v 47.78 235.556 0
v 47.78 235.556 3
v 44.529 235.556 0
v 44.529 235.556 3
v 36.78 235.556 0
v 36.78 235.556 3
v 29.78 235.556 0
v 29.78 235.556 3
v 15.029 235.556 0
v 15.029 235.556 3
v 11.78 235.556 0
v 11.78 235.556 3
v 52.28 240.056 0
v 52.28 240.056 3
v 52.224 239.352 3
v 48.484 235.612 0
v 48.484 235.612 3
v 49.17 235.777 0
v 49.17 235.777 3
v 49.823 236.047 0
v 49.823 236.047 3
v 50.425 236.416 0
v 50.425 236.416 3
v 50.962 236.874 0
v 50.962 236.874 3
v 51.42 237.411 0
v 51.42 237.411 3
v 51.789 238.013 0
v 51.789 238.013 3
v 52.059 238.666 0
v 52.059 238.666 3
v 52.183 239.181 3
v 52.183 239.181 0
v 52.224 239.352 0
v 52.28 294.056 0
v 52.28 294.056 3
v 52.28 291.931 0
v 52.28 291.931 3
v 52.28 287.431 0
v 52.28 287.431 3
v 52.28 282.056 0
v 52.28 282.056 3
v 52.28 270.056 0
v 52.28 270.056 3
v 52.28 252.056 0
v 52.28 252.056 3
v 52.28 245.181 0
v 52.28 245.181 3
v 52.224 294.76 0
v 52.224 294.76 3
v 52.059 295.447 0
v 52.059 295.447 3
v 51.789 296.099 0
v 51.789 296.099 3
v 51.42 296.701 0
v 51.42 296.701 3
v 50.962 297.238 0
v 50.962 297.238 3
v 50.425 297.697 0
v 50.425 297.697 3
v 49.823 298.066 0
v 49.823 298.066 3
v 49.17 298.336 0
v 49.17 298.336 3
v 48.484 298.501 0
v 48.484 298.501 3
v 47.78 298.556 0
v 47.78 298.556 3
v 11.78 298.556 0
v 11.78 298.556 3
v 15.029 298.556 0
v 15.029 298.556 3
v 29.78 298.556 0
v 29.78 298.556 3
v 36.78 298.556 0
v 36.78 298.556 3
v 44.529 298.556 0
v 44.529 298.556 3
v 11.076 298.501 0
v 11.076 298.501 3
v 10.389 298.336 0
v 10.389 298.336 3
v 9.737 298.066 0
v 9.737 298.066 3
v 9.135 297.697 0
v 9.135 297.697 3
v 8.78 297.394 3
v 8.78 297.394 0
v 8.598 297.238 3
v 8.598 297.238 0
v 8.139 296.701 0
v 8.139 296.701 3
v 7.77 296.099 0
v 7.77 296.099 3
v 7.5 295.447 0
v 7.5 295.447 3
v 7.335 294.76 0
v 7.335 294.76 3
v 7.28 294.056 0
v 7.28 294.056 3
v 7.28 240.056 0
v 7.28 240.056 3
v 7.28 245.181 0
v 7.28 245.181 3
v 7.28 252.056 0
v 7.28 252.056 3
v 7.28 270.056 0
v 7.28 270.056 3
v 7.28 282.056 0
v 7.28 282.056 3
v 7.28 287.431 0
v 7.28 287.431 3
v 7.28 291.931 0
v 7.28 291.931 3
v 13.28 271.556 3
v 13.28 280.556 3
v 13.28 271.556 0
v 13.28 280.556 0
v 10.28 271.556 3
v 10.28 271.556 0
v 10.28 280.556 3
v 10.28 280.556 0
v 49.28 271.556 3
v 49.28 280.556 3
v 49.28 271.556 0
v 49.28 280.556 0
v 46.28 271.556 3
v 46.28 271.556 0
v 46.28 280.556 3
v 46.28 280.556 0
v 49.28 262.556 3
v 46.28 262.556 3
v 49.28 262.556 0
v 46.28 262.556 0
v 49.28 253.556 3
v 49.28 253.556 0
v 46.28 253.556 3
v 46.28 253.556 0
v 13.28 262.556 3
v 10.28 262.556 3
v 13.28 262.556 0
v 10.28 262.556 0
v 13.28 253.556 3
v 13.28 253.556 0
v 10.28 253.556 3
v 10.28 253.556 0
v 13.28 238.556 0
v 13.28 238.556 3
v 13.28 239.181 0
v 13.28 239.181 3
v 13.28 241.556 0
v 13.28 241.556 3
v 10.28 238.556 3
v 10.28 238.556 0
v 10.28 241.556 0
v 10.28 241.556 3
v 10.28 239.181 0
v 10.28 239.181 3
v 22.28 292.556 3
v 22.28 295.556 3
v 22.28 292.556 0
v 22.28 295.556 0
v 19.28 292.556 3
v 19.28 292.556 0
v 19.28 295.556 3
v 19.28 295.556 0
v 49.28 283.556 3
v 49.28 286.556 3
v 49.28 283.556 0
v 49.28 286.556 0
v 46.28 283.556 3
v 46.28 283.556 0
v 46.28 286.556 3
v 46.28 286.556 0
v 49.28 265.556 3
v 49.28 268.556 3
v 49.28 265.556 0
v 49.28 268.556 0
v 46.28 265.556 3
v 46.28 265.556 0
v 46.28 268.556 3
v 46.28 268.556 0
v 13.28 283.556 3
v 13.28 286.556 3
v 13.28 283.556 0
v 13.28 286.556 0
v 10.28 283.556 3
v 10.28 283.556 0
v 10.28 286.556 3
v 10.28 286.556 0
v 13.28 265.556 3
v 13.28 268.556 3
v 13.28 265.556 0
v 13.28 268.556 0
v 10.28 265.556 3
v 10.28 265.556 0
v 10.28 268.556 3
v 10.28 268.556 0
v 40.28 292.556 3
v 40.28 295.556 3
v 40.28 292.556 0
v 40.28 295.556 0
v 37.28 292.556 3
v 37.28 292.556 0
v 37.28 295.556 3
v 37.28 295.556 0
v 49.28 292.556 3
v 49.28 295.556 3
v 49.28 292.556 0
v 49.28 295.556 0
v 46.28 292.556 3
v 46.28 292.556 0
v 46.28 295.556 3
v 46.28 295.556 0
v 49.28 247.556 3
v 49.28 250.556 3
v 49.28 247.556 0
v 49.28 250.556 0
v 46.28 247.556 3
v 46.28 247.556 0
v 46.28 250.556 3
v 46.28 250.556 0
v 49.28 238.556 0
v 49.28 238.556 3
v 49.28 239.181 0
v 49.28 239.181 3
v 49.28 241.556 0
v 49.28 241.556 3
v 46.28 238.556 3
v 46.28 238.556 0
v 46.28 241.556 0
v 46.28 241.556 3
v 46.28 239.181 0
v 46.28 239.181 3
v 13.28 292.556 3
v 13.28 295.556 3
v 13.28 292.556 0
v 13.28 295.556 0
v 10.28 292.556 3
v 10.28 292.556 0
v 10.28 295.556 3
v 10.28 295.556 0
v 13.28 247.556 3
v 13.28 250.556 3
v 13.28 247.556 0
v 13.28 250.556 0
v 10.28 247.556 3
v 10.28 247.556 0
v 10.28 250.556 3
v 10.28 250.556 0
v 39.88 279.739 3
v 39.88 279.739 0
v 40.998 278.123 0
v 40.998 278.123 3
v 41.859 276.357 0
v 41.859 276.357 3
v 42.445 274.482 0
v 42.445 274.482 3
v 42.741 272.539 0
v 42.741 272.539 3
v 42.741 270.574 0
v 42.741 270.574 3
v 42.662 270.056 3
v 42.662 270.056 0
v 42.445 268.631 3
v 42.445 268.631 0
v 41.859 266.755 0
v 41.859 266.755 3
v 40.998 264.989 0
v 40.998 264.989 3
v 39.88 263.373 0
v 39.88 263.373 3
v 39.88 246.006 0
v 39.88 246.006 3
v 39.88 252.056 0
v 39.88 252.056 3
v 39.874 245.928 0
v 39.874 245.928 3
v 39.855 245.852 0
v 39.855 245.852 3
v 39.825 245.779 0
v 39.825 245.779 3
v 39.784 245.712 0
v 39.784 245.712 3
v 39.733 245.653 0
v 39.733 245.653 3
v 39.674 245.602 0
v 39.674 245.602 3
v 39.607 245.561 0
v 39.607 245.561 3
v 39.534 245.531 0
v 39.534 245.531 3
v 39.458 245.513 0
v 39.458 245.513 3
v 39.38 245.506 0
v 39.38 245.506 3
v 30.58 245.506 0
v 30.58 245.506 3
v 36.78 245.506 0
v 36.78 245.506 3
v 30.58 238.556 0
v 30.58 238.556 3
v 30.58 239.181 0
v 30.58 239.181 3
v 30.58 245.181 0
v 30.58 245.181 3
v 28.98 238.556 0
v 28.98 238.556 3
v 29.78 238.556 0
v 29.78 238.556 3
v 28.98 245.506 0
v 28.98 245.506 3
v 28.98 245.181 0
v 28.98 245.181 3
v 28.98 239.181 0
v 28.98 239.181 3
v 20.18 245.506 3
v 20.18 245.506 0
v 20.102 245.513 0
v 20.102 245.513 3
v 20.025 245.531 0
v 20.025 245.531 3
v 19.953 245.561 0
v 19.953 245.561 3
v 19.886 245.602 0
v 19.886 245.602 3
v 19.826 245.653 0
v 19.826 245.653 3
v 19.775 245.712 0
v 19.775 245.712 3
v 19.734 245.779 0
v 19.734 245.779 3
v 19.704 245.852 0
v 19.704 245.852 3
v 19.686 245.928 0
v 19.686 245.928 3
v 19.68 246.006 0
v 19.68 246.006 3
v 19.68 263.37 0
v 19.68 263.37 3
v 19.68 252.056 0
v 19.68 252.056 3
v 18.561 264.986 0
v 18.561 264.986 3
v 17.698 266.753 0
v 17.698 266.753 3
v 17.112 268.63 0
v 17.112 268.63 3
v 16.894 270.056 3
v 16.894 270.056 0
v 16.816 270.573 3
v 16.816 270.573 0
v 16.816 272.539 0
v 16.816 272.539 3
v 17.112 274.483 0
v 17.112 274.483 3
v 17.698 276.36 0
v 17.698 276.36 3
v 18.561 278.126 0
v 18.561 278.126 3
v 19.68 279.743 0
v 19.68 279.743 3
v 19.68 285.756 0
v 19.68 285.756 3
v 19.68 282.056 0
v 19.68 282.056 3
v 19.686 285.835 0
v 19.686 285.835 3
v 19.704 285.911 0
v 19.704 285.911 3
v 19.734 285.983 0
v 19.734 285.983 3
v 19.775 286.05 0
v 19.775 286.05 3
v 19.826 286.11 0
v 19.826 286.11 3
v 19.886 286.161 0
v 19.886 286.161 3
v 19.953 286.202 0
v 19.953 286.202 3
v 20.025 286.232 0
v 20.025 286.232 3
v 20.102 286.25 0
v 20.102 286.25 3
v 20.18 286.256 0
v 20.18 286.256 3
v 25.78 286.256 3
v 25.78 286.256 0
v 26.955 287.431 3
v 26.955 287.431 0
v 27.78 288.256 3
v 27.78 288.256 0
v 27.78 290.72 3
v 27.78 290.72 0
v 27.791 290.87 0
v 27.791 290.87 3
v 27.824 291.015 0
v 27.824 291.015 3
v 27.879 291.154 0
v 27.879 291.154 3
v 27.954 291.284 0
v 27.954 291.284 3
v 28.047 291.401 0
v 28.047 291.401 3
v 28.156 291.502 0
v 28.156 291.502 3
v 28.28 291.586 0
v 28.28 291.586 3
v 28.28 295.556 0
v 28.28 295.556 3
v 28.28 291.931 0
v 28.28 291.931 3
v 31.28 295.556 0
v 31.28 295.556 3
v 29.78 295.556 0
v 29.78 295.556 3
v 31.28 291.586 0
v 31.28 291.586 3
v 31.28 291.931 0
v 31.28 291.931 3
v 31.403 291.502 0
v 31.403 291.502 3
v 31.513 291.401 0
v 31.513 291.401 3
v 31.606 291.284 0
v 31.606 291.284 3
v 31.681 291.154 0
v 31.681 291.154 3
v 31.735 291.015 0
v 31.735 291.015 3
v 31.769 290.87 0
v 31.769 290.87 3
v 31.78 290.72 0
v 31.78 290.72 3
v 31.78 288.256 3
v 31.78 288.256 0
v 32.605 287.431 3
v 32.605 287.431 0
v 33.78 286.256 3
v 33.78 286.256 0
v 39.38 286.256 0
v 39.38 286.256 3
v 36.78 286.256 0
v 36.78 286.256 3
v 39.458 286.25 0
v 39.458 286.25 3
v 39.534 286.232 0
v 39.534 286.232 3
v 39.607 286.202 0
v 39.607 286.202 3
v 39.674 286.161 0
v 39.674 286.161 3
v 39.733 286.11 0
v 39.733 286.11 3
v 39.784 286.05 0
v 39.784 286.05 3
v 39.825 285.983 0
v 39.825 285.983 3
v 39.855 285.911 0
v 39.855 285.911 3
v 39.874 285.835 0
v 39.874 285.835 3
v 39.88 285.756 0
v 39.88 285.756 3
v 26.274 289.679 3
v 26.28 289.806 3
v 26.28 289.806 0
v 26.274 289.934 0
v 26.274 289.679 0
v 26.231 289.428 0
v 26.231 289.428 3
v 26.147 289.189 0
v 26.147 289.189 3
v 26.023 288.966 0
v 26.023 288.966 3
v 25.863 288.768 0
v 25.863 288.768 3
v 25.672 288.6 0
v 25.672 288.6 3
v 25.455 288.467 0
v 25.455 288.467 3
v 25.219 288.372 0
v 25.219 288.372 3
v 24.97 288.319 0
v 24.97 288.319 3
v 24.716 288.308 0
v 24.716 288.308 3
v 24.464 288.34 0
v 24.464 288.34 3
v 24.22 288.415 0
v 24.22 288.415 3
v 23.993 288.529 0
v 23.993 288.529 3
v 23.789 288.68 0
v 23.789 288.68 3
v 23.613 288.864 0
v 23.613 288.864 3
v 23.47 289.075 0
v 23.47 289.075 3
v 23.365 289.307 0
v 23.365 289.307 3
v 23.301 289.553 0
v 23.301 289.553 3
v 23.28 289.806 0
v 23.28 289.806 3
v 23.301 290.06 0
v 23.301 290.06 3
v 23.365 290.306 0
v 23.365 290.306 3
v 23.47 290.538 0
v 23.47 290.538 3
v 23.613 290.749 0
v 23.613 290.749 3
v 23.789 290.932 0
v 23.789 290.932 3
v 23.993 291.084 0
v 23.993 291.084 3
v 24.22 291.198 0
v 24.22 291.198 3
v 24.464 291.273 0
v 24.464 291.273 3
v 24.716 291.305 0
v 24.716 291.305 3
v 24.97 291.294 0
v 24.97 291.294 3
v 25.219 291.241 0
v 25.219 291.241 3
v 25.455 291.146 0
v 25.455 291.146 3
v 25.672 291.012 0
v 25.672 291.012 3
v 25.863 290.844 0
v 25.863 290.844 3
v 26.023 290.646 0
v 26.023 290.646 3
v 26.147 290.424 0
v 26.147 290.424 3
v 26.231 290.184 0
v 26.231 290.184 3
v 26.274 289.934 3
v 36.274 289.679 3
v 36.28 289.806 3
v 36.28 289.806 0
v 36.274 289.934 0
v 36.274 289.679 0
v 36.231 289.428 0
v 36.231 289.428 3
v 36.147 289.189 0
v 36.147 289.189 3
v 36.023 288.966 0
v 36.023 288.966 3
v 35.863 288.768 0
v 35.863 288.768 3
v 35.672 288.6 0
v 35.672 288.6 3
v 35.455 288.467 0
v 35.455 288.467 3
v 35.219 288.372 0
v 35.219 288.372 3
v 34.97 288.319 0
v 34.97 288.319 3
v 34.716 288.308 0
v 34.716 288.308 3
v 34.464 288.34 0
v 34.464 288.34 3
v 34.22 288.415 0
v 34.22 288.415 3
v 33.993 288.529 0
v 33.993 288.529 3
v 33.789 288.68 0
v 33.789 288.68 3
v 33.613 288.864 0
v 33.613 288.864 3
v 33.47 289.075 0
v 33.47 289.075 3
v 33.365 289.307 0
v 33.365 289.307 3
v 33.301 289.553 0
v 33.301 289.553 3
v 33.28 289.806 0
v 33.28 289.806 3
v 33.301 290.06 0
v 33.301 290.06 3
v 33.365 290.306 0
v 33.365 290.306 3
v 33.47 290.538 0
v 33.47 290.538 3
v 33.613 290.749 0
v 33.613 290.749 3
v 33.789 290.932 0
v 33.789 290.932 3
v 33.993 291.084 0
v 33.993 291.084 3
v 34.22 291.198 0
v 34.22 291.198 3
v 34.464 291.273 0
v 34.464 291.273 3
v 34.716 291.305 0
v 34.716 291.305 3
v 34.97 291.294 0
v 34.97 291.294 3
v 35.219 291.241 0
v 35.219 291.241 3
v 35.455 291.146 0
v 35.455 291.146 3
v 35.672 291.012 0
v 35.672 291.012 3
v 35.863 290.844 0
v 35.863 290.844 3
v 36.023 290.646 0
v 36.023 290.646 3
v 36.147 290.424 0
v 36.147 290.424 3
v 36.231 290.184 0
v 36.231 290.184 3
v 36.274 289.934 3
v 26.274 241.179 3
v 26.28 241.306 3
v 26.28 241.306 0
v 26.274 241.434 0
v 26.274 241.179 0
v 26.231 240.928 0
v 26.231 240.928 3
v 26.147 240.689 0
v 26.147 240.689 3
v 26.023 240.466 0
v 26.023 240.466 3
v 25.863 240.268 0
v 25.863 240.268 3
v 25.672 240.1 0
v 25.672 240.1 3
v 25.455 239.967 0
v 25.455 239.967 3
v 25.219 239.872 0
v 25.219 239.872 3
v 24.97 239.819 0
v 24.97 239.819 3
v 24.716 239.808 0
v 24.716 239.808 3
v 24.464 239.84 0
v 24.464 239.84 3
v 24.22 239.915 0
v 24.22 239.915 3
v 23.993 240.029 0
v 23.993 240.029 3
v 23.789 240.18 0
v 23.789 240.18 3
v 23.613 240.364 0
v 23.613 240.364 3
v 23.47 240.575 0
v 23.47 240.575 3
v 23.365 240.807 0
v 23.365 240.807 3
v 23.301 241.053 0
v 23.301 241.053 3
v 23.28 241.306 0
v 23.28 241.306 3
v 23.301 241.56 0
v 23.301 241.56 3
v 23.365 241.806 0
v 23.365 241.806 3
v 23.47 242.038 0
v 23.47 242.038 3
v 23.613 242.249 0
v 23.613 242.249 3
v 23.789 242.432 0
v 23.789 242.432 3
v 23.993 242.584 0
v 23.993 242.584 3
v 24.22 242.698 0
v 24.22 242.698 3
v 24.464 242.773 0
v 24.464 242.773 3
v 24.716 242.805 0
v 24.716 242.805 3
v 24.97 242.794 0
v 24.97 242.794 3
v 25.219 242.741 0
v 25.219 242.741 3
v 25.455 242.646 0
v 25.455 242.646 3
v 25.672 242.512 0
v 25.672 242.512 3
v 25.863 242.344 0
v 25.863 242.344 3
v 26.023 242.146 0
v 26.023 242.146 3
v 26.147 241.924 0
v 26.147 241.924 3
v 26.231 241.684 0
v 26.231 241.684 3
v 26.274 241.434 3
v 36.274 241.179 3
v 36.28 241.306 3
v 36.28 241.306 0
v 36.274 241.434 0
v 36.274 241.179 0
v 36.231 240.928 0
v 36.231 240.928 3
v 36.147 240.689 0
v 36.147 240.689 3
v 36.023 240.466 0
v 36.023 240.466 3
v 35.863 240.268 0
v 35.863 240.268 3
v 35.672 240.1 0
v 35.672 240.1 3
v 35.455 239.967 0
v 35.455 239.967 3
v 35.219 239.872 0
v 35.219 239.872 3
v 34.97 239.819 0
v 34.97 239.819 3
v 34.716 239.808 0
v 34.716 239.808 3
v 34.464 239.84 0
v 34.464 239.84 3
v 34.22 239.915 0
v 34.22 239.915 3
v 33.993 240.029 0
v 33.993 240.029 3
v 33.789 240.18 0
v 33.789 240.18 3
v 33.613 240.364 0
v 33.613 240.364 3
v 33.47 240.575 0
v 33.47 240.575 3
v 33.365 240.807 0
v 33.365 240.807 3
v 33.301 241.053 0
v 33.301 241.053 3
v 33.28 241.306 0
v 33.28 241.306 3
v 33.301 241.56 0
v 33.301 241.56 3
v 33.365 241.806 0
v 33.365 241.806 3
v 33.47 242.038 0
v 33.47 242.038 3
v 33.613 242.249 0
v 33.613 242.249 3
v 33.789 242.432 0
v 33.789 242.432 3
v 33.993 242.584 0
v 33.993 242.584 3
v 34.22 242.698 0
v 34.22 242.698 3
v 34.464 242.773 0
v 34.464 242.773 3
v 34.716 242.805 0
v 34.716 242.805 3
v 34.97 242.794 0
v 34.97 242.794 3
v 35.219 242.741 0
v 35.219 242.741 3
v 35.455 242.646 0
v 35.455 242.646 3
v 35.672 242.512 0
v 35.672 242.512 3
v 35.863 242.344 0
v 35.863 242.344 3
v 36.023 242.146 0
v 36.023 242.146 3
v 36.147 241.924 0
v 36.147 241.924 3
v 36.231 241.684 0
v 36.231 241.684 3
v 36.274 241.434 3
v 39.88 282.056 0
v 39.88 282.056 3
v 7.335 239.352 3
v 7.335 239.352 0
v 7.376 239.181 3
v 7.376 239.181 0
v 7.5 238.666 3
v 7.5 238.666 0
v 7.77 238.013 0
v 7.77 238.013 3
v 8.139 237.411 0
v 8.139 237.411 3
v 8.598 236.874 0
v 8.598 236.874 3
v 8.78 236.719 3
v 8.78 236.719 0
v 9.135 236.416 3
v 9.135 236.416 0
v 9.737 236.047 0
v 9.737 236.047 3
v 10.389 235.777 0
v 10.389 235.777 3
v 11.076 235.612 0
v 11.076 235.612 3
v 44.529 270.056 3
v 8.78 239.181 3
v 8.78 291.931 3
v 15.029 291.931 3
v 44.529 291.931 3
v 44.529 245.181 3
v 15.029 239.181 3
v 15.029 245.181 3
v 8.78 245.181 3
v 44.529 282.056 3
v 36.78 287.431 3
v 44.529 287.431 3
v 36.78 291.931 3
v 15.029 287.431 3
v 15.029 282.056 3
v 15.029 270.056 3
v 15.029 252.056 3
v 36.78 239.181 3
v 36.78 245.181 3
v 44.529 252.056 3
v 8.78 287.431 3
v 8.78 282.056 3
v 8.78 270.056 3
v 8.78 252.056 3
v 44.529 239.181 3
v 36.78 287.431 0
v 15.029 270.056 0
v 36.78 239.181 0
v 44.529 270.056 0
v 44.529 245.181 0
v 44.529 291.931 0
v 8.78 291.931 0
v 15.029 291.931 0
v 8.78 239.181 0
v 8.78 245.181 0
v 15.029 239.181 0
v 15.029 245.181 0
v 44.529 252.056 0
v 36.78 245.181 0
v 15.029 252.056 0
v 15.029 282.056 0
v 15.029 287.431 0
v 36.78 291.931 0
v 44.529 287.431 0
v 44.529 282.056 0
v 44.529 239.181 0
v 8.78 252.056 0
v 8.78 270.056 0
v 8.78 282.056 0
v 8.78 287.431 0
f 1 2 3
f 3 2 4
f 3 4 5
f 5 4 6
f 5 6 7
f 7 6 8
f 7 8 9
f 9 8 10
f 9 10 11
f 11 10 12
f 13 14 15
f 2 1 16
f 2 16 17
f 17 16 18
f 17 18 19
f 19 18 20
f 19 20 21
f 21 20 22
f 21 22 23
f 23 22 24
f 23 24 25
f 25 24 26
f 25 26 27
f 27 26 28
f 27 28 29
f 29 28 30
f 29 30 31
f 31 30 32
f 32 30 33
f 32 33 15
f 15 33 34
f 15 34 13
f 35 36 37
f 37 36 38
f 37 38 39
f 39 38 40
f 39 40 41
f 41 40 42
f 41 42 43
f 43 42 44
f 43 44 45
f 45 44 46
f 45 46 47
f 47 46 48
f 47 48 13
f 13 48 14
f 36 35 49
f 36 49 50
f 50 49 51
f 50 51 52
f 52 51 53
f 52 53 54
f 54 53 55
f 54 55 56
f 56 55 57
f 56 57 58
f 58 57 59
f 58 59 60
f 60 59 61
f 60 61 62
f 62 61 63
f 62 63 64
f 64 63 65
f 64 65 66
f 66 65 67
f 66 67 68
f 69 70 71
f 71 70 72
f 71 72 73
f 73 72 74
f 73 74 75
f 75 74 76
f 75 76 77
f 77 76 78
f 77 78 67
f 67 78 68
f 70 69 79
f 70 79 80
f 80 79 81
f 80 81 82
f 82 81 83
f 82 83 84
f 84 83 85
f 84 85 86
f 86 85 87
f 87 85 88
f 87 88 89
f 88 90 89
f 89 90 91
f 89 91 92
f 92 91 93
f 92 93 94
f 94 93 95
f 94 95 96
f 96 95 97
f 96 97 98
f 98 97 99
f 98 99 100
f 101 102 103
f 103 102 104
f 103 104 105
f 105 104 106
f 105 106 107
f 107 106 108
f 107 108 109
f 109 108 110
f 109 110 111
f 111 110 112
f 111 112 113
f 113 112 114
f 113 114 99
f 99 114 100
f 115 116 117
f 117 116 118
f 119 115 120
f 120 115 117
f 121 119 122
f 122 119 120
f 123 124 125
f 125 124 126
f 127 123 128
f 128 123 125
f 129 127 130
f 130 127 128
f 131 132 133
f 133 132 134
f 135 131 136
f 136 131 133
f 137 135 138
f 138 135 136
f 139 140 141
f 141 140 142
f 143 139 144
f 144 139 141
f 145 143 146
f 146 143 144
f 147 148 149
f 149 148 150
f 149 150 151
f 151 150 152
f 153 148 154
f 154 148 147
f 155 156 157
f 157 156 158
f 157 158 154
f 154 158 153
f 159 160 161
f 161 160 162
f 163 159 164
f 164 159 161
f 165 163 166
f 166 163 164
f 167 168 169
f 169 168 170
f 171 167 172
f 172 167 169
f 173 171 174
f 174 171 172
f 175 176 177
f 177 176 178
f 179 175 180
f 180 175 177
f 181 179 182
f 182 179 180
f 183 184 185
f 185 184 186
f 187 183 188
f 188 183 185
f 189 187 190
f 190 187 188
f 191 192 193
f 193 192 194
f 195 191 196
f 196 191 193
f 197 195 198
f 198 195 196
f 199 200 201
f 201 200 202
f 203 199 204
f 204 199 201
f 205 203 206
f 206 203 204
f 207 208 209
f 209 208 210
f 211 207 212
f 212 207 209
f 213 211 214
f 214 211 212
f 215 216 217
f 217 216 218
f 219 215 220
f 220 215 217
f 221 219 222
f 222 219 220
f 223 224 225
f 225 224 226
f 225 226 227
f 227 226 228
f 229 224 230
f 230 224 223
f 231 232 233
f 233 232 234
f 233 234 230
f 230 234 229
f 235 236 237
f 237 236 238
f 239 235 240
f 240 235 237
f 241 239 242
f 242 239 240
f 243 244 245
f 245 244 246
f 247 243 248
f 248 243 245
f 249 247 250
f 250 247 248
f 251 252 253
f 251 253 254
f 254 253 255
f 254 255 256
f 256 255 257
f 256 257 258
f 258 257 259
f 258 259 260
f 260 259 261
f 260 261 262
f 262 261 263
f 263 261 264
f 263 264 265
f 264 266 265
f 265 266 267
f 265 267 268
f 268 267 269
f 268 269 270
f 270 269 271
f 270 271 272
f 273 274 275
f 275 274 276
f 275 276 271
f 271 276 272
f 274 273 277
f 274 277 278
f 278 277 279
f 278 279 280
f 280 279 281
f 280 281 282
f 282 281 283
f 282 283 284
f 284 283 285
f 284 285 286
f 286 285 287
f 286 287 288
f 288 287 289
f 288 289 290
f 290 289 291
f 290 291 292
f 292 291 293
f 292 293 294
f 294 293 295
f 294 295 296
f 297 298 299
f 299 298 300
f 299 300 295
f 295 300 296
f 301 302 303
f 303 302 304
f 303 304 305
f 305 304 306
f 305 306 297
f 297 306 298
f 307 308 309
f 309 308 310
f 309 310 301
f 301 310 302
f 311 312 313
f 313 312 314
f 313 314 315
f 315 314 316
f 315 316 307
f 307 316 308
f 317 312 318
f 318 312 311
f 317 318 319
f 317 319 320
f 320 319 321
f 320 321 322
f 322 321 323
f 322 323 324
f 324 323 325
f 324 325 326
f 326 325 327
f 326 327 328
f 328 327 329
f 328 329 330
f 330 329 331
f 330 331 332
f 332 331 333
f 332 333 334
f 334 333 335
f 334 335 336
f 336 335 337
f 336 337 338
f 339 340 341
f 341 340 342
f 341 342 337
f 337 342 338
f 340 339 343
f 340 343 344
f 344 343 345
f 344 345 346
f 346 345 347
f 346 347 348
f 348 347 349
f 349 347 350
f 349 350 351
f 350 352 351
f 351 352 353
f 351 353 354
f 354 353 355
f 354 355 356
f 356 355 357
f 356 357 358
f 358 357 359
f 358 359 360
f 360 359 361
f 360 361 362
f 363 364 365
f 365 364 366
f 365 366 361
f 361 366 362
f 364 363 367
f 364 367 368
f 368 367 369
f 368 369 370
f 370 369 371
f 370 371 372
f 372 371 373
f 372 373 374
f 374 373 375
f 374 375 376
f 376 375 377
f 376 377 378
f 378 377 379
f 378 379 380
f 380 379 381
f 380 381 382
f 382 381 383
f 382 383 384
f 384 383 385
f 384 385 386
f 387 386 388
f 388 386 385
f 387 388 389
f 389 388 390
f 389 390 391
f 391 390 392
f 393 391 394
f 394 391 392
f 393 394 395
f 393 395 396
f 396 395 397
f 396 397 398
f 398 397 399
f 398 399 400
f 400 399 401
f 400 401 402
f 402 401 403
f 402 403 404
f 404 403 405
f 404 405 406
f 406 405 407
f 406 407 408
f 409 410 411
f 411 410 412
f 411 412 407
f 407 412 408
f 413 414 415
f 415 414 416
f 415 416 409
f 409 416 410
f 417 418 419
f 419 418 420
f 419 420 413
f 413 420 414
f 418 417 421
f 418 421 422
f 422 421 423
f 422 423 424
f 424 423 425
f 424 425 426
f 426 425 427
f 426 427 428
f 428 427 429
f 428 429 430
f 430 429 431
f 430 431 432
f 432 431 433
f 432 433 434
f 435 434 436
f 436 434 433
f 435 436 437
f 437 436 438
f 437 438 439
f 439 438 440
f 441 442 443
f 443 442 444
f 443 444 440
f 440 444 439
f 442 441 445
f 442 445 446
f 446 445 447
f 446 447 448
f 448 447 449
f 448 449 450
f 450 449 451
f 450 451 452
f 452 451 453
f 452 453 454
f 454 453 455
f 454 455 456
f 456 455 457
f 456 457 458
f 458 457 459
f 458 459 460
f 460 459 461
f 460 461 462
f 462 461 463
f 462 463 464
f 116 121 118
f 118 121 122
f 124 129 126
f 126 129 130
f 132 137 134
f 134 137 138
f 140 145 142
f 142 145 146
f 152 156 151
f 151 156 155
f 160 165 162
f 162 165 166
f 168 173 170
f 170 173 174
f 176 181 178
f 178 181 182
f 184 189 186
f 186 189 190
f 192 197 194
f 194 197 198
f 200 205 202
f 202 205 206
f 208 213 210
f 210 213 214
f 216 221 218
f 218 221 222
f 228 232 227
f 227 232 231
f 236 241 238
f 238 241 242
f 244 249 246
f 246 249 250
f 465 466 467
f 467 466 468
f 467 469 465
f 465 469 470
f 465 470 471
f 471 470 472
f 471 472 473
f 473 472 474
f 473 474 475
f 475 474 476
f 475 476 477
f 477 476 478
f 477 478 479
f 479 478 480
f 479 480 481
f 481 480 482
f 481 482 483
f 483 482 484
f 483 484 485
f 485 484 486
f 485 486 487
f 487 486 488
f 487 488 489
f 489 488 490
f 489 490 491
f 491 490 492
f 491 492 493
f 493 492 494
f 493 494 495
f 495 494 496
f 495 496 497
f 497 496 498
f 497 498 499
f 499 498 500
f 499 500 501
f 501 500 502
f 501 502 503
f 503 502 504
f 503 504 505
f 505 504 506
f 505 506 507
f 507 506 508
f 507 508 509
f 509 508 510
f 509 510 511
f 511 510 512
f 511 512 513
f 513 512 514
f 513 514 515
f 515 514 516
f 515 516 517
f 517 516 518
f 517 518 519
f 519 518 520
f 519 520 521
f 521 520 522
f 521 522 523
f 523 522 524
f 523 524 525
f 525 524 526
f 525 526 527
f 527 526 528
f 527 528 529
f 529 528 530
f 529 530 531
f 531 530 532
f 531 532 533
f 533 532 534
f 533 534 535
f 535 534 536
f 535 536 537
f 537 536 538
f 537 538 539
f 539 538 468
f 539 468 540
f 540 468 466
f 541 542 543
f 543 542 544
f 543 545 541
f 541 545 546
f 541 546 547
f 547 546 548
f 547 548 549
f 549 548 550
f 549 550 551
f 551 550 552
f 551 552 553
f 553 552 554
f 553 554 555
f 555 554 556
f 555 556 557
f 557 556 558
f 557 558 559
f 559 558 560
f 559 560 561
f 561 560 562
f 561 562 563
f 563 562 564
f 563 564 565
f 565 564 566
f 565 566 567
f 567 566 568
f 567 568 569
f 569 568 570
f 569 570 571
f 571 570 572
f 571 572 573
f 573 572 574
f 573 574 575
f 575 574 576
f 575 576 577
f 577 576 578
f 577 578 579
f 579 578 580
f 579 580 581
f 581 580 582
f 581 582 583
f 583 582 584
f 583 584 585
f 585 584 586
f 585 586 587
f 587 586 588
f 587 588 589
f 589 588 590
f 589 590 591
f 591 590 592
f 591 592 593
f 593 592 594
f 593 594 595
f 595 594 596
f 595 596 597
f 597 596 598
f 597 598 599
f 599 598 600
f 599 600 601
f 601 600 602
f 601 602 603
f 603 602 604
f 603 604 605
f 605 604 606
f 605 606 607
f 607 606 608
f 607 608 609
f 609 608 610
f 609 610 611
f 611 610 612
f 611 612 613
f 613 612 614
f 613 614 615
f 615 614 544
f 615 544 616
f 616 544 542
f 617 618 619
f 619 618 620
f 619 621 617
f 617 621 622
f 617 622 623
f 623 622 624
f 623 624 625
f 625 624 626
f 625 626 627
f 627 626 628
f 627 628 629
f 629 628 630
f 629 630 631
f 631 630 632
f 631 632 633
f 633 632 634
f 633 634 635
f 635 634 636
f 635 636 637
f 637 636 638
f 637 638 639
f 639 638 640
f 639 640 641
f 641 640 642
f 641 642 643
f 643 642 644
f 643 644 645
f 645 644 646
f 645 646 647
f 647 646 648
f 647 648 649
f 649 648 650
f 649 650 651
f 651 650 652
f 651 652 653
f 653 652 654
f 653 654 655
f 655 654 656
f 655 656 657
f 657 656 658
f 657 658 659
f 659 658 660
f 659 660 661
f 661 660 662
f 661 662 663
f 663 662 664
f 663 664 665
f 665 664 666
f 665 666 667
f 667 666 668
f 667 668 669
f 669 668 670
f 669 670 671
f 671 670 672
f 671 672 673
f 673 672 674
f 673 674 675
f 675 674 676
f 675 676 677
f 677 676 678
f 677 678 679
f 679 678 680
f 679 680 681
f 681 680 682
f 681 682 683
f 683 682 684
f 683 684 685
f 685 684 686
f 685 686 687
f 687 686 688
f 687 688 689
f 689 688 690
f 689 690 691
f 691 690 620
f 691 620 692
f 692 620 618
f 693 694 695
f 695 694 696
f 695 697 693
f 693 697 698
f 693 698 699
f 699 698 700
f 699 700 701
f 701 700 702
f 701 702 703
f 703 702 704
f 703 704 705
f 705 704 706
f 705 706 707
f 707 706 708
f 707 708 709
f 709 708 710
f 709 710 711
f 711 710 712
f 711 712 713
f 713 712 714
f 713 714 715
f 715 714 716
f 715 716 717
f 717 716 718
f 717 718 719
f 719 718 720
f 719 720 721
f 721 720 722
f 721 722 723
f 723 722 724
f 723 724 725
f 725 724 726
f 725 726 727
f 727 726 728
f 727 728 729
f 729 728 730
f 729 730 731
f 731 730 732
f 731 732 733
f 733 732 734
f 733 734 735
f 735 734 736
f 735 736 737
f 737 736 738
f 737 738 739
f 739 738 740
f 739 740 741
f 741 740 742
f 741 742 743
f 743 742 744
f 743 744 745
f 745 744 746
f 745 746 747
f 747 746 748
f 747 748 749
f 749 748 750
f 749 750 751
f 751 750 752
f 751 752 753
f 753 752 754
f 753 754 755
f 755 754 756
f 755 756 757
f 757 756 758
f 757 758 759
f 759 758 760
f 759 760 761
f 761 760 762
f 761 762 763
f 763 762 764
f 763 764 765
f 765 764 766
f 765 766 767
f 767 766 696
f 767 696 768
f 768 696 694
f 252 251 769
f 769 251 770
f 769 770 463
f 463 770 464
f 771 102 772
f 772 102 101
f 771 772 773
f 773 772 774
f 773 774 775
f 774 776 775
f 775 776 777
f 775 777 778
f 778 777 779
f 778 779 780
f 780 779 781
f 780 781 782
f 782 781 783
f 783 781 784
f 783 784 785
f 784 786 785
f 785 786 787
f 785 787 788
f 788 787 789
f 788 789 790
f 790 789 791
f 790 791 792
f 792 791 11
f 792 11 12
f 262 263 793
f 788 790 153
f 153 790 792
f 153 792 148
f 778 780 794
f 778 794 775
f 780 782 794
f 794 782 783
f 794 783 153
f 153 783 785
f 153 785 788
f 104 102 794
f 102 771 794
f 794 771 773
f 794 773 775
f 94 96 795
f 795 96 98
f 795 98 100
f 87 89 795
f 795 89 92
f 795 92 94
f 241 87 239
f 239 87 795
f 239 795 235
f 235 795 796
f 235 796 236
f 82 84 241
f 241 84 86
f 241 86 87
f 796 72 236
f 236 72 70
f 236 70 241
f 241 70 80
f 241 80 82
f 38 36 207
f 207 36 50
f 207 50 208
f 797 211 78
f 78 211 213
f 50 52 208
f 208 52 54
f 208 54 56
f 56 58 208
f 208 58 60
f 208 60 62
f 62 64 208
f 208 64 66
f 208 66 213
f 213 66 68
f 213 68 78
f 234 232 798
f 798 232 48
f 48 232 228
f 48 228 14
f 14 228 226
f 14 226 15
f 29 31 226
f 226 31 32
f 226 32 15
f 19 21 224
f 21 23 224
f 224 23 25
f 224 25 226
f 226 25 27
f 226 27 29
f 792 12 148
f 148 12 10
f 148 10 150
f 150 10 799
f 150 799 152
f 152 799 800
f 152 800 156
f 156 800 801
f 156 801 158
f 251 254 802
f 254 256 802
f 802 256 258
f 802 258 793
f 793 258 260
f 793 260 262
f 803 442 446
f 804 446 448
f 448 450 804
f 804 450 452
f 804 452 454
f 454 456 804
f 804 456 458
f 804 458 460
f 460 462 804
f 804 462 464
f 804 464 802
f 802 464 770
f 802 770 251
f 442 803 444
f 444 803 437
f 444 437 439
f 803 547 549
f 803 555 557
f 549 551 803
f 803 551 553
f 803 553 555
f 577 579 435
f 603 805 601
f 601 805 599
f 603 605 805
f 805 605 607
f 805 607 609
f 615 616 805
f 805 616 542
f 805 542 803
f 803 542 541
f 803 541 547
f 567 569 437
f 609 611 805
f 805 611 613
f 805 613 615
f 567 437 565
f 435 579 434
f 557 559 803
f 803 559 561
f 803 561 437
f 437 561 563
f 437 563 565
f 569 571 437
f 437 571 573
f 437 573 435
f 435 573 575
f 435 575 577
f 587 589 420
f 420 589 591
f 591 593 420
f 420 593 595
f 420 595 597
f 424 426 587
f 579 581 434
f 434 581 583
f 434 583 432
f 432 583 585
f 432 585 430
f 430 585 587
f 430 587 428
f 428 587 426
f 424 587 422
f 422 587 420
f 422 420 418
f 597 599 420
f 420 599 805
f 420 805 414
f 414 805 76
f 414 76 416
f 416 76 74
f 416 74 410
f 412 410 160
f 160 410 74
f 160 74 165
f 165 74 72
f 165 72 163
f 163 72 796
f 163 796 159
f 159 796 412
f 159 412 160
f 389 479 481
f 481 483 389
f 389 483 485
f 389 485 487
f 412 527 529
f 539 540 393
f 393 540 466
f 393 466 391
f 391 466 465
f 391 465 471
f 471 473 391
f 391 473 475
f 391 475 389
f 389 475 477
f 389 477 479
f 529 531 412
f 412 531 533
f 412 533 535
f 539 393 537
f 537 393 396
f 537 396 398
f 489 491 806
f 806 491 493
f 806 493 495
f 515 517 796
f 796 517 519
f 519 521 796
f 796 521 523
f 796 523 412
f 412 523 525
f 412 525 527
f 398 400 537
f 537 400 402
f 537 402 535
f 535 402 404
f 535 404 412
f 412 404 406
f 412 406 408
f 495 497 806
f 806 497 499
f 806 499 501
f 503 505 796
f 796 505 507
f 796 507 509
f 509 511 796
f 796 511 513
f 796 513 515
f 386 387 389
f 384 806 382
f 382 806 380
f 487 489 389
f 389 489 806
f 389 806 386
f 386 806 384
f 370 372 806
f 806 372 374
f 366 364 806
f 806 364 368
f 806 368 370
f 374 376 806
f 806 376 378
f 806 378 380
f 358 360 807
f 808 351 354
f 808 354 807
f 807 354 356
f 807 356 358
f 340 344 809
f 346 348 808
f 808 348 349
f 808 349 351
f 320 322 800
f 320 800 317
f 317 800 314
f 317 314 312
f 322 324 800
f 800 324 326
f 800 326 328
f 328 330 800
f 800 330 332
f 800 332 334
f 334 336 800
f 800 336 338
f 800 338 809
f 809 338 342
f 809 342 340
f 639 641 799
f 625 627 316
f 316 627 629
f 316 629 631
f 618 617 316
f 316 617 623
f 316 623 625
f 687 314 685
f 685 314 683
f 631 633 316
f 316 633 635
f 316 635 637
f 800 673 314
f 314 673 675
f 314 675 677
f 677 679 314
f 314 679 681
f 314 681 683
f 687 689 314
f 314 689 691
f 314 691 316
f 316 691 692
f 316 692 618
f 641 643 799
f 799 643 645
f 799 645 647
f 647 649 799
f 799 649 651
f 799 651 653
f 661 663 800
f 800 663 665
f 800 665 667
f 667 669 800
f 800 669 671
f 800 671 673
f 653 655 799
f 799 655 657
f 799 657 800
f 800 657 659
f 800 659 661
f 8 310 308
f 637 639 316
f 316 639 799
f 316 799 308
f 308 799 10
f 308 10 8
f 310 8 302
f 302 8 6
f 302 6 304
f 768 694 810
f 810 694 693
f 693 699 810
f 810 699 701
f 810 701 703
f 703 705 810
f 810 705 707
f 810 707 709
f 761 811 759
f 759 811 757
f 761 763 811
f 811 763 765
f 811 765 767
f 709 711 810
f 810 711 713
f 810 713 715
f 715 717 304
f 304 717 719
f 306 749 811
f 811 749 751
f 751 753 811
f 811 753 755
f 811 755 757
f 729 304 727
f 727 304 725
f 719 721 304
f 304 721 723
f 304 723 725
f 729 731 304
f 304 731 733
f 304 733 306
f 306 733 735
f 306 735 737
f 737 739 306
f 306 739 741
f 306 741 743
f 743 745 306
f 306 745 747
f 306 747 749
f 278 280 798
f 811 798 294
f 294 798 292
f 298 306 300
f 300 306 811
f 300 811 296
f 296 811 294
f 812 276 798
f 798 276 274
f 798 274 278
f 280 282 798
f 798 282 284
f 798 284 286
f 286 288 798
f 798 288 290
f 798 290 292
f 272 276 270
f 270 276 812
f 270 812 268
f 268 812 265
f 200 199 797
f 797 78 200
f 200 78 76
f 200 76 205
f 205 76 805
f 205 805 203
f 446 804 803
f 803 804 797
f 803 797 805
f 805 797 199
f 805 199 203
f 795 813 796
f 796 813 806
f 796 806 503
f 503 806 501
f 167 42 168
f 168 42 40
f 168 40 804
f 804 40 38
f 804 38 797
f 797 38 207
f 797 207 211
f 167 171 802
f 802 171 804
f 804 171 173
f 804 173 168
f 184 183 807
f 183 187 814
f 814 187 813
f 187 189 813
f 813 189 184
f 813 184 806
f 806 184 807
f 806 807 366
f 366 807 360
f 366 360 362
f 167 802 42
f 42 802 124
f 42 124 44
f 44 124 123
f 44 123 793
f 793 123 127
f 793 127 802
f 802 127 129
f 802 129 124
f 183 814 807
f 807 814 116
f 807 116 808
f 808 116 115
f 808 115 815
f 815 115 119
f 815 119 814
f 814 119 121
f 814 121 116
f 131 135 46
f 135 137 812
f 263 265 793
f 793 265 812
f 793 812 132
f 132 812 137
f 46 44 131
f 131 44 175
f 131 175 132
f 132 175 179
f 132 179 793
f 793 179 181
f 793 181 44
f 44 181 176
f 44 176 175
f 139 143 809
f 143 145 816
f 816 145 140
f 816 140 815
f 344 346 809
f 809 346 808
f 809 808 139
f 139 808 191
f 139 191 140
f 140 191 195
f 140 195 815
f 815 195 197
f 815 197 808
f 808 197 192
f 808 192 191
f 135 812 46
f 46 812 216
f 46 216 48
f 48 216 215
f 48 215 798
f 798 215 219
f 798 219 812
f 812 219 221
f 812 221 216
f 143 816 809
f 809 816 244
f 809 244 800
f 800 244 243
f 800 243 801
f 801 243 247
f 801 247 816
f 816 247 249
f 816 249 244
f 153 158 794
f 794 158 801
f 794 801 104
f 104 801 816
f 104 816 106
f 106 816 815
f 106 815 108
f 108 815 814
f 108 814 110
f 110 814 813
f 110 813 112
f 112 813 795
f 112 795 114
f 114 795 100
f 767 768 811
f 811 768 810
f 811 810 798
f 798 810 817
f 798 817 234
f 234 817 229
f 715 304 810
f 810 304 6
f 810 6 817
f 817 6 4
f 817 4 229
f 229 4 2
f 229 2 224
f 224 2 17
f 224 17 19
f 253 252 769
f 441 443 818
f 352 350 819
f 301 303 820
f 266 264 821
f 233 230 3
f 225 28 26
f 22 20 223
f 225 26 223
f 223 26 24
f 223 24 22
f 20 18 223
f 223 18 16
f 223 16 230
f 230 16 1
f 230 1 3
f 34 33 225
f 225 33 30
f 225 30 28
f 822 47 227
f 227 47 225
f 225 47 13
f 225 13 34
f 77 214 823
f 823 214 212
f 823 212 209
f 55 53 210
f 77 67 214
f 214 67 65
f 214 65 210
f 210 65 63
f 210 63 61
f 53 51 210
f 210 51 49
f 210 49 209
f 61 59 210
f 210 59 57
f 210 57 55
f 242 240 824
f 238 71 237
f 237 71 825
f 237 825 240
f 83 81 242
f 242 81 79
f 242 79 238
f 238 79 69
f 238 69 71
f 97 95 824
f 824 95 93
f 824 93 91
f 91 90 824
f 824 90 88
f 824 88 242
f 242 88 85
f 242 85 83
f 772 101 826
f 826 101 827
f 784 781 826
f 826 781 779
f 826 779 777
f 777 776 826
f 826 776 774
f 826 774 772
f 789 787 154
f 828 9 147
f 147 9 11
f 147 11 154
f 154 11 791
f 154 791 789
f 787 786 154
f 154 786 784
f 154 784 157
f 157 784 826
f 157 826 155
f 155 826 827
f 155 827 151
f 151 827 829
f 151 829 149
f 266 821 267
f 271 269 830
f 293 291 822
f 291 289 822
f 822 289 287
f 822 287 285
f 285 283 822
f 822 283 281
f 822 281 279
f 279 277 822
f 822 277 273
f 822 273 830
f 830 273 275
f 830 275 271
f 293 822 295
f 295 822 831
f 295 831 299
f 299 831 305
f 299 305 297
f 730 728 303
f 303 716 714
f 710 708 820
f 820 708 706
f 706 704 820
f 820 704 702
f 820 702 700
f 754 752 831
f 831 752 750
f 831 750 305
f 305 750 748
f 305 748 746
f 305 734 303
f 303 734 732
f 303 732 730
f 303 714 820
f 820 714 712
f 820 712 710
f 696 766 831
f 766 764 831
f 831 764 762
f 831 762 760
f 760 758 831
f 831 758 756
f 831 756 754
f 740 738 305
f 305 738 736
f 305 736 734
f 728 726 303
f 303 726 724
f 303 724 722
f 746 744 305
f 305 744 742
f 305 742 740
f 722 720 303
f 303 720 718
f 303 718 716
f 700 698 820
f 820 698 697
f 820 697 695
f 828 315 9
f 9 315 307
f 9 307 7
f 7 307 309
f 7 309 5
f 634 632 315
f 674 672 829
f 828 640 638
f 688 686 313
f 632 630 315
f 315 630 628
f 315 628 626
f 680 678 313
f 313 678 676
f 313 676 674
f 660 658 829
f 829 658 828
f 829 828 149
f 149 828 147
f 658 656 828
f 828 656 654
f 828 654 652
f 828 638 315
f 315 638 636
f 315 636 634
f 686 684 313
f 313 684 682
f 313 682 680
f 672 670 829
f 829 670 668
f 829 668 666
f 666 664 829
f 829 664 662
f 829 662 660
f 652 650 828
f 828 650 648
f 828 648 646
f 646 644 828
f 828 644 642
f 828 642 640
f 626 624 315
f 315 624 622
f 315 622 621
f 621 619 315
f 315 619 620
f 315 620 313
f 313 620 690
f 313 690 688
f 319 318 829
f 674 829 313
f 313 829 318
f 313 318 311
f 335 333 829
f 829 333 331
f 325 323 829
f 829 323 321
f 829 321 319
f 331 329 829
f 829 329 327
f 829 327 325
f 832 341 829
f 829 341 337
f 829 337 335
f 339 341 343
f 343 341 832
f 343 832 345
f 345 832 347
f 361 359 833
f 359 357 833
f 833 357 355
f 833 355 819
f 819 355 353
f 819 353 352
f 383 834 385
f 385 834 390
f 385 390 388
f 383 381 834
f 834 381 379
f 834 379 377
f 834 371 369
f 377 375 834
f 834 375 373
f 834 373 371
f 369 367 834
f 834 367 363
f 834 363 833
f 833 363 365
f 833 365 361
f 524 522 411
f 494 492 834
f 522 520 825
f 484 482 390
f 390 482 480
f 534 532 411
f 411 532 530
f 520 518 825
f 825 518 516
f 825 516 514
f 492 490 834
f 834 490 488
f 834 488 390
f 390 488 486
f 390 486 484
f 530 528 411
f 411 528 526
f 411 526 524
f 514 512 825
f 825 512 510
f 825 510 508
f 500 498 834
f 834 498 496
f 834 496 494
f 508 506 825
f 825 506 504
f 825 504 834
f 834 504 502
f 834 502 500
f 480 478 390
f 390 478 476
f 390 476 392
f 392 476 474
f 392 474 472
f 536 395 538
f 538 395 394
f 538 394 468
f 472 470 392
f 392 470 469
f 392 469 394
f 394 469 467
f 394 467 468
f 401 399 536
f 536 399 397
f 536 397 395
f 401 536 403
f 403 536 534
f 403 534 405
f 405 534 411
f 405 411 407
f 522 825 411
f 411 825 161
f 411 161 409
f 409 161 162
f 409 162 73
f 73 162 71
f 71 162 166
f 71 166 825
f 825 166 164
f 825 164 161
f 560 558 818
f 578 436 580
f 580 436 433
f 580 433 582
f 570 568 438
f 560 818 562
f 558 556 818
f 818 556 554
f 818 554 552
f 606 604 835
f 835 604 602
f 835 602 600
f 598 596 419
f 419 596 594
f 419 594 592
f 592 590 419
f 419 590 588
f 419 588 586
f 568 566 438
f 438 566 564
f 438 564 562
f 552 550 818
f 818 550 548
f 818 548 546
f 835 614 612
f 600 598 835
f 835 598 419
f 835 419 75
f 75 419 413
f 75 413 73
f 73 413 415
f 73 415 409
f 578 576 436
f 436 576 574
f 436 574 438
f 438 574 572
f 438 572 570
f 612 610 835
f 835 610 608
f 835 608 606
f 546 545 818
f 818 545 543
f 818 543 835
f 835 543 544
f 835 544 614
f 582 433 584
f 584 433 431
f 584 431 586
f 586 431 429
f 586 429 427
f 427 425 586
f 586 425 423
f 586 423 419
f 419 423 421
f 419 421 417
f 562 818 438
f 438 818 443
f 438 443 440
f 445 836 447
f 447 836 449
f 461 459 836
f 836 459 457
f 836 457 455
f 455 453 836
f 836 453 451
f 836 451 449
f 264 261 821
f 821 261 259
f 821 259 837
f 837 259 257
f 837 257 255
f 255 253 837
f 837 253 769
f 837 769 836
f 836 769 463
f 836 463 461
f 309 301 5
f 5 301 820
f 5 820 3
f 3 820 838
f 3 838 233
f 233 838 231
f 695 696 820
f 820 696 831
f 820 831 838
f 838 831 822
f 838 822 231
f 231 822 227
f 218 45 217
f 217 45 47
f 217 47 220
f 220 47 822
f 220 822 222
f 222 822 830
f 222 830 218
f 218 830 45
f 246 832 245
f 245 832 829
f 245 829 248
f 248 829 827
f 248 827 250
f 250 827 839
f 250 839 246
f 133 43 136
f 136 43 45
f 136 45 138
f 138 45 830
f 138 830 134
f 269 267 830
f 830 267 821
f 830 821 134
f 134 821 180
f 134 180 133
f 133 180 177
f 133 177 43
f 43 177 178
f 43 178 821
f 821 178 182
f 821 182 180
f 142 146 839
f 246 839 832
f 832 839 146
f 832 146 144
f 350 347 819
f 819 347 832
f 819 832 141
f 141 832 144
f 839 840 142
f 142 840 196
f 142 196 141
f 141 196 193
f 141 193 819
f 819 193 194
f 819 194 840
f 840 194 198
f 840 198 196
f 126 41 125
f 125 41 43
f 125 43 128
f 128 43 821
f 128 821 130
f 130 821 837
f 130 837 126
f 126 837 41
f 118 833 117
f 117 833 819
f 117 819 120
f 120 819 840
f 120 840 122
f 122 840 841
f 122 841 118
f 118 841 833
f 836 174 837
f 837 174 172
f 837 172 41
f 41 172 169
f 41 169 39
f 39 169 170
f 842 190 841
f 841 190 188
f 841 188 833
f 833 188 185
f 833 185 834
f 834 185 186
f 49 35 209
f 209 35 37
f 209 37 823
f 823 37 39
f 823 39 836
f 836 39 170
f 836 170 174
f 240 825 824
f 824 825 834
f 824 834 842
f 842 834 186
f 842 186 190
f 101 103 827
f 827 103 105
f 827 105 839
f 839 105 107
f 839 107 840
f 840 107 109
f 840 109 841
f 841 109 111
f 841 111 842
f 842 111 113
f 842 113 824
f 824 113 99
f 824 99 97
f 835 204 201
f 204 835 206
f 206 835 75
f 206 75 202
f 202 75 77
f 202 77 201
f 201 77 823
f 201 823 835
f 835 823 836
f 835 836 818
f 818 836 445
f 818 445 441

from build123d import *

# Parameters (mm, degrees)
MODEL_W                 = 3
MODEL_H                 = 3
MODEL_R                 = 1.5
MODEL_H_2               = 9
SALIENTE_EXTRUIR1_DEPTH = 3


with BuildPart() as part:
    # Model → Saliente-Extruir1 (new body)
    with BuildSketch(Plane.XY):
        with BuildLine():
            Line((7.279746634, 294.056370254), (7.279746634, 240.056370254))
            ThreePointArc((7.279746634, 240.056370254), (8.597766118, 236.874389738), (11.779746634, 235.556370254))
            Line((11.779746634, 235.556370254), (47.779746634, 235.556370254))
            ThreePointArc((47.779746634, 235.556370254), (50.961727149, 236.874389738), (52.279746634, 240.056370254))
            Line((52.279746634, 240.056370254), (52.279746634, 294.056370254))
            ThreePointArc((52.279746634, 294.056370254), (50.961727149, 297.238350769), (47.779746634, 298.556370254))
            Line((47.779746634, 298.556370254), (11.779746634, 298.556370254))
            ThreePointArc((11.779746634, 298.556370254), (8.597766118, 297.238350769), (7.279746634, 294.056370254))
        make_face()
        with Locations((11.779746634, 240.056370254)):
            Rectangle(MODEL_W, MODEL_H, mode=Mode.SUBTRACT)
        with Locations((11.779746634, 249.056370254)):
            Rectangle(MODEL_W, MODEL_H, mode=Mode.SUBTRACT)
        with Locations((24.779746634, 241.306370254)):
            Circle(MODEL_R, mode=Mode.SUBTRACT)
        with Locations((11.779746634, 258.056370254)):
            Rectangle(MODEL_W, MODEL_H_2, mode=Mode.SUBTRACT)
        with Locations((34.779746634, 241.306370254)):
            Circle(MODEL_R, mode=Mode.SUBTRACT)
        with Locations((47.779746634, 240.056370254)):
            Rectangle(MODEL_W, MODEL_H, mode=Mode.SUBTRACT)
        with Locations((47.779746634, 249.056370254)):
            Rectangle(MODEL_W, MODEL_H, mode=Mode.SUBTRACT)
        with Locations((47.779746634, 258.056370254)):
            Rectangle(MODEL_W, MODEL_H_2, mode=Mode.SUBTRACT)
        with Locations((11.779746634, 267.056370254)):
            Rectangle(MODEL_W, MODEL_H, mode=Mode.SUBTRACT)
        with Locations((11.779746634, 276.056370254)):
            Rectangle(MODEL_W, MODEL_H_2, mode=Mode.SUBTRACT)
        with BuildLine():
            Line((28.279746634, 291.586497273), (28.279746634, 295.556370254))
            Line((28.279746634, 295.556370254), (31.279746634, 295.556370254))
            Line((31.279746634, 295.556370254), (31.279746634, 291.586497273))
            ThreePointArc((31.279746634, 291.586497273), (31.645772038, 291.220471869), (31.779746634, 290.720471869))
            Line((31.779746634, 290.720471869), (31.779746634, 288.256370254))
            Line((31.779746634, 288.256370254), (33.779746634, 286.256370254))
            Line((33.779746634, 286.256370254), (39.379746634, 286.256370254))
            ThreePointArc((39.379746634, 286.256370254), (39.733300024, 286.109923644), (39.879746634, 285.756370254))
            Line((39.879746634, 285.756370254), (39.879746634, 279.739428783))
            ThreePointArc((39.879746634, 279.739428783), (42.778382711, 271.556370254), (39.879746634, 263.373311725))
            Line((39.879746634, 263.373311725), (39.879746634, 246.006370254))
            ThreePointArc((39.879746634, 246.006370254), (39.733300024, 245.652816863), (39.379746634, 245.506370254))
            Line((39.379746634, 245.506370254), (30.579746634, 245.506370254))
            Line((30.579746634, 245.506370254), (30.579746634, 238.556370254))
            Line((30.579746634, 238.556370254), (28.979746634, 238.556370254))
            Line((28.979746634, 238.556370254), (28.979746634, 245.506370254))
            Line((28.979746634, 245.506370254), (20.179746634, 245.506370254))
            ThreePointArc((20.179746634, 245.506370254), (19.826193243, 245.652816863), (19.679746634, 246.006370254))
            Line((19.679746634, 246.006370254), (19.679746634, 263.369945552))
            ThreePointArc((19.679746634, 263.369945552), (16.778382711, 271.556370254), (19.679746634, 279.742794955))
            Line((19.679746634, 279.742794955), (19.679746634, 285.756370254))
            ThreePointArc((19.679746634, 285.756370254), (19.826193243, 286.109923644), (20.179746634, 286.256370254))
            Line((20.179746634, 286.256370254), (25.779746634, 286.256370254))
            Line((25.779746634, 286.256370254), (27.779746634, 288.256370254))
            Line((27.779746634, 288.256370254), (27.779746634, 290.720471869))
            ThreePointArc((27.779746634, 290.720471869), (27.91372123, 291.220471869), (28.279746634, 291.586497273))
        make_face(mode=Mode.SUBTRACT)
        with Locations((11.779746634, 285.056370254)):
            Rectangle(MODEL_W, MODEL_H, mode=Mode.SUBTRACT)
        with Locations((11.779746634, 294.056370254)):
            Rectangle(MODEL_W, MODEL_H, mode=Mode.SUBTRACT)
        with Locations((24.779746634, 289.806370254)):
            Circle(MODEL_R, mode=Mode.SUBTRACT)
        with Locations((20.779746634, 294.056370254)):
            Rectangle(MODEL_W, MODEL_H, mode=Mode.SUBTRACT)
        with Locations((47.779746634, 267.056370254)):
            Rectangle(MODEL_W, MODEL_H, mode=Mode.SUBTRACT)
        with Locations((47.779746634, 276.056370254)):
            Rectangle(MODEL_W, MODEL_H_2, mode=Mode.SUBTRACT)
        with Locations((34.779746634, 289.806370254)):
            Circle(MODEL_R, mode=Mode.SUBTRACT)
        with Locations((38.779746634, 294.056370254)):
            Rectangle(MODEL_W, MODEL_H, mode=Mode.SUBTRACT)
        with Locations((47.779746634, 285.056370254)):
            Rectangle(MODEL_W, MODEL_H, mode=Mode.SUBTRACT)
        with Locations((47.779746634, 294.056370254)):
            Rectangle(MODEL_W, MODEL_H, mode=Mode.SUBTRACT)
    extrude(amount=SALIENTE_EXTRUIR1_DEPTH)


solid = part.part
